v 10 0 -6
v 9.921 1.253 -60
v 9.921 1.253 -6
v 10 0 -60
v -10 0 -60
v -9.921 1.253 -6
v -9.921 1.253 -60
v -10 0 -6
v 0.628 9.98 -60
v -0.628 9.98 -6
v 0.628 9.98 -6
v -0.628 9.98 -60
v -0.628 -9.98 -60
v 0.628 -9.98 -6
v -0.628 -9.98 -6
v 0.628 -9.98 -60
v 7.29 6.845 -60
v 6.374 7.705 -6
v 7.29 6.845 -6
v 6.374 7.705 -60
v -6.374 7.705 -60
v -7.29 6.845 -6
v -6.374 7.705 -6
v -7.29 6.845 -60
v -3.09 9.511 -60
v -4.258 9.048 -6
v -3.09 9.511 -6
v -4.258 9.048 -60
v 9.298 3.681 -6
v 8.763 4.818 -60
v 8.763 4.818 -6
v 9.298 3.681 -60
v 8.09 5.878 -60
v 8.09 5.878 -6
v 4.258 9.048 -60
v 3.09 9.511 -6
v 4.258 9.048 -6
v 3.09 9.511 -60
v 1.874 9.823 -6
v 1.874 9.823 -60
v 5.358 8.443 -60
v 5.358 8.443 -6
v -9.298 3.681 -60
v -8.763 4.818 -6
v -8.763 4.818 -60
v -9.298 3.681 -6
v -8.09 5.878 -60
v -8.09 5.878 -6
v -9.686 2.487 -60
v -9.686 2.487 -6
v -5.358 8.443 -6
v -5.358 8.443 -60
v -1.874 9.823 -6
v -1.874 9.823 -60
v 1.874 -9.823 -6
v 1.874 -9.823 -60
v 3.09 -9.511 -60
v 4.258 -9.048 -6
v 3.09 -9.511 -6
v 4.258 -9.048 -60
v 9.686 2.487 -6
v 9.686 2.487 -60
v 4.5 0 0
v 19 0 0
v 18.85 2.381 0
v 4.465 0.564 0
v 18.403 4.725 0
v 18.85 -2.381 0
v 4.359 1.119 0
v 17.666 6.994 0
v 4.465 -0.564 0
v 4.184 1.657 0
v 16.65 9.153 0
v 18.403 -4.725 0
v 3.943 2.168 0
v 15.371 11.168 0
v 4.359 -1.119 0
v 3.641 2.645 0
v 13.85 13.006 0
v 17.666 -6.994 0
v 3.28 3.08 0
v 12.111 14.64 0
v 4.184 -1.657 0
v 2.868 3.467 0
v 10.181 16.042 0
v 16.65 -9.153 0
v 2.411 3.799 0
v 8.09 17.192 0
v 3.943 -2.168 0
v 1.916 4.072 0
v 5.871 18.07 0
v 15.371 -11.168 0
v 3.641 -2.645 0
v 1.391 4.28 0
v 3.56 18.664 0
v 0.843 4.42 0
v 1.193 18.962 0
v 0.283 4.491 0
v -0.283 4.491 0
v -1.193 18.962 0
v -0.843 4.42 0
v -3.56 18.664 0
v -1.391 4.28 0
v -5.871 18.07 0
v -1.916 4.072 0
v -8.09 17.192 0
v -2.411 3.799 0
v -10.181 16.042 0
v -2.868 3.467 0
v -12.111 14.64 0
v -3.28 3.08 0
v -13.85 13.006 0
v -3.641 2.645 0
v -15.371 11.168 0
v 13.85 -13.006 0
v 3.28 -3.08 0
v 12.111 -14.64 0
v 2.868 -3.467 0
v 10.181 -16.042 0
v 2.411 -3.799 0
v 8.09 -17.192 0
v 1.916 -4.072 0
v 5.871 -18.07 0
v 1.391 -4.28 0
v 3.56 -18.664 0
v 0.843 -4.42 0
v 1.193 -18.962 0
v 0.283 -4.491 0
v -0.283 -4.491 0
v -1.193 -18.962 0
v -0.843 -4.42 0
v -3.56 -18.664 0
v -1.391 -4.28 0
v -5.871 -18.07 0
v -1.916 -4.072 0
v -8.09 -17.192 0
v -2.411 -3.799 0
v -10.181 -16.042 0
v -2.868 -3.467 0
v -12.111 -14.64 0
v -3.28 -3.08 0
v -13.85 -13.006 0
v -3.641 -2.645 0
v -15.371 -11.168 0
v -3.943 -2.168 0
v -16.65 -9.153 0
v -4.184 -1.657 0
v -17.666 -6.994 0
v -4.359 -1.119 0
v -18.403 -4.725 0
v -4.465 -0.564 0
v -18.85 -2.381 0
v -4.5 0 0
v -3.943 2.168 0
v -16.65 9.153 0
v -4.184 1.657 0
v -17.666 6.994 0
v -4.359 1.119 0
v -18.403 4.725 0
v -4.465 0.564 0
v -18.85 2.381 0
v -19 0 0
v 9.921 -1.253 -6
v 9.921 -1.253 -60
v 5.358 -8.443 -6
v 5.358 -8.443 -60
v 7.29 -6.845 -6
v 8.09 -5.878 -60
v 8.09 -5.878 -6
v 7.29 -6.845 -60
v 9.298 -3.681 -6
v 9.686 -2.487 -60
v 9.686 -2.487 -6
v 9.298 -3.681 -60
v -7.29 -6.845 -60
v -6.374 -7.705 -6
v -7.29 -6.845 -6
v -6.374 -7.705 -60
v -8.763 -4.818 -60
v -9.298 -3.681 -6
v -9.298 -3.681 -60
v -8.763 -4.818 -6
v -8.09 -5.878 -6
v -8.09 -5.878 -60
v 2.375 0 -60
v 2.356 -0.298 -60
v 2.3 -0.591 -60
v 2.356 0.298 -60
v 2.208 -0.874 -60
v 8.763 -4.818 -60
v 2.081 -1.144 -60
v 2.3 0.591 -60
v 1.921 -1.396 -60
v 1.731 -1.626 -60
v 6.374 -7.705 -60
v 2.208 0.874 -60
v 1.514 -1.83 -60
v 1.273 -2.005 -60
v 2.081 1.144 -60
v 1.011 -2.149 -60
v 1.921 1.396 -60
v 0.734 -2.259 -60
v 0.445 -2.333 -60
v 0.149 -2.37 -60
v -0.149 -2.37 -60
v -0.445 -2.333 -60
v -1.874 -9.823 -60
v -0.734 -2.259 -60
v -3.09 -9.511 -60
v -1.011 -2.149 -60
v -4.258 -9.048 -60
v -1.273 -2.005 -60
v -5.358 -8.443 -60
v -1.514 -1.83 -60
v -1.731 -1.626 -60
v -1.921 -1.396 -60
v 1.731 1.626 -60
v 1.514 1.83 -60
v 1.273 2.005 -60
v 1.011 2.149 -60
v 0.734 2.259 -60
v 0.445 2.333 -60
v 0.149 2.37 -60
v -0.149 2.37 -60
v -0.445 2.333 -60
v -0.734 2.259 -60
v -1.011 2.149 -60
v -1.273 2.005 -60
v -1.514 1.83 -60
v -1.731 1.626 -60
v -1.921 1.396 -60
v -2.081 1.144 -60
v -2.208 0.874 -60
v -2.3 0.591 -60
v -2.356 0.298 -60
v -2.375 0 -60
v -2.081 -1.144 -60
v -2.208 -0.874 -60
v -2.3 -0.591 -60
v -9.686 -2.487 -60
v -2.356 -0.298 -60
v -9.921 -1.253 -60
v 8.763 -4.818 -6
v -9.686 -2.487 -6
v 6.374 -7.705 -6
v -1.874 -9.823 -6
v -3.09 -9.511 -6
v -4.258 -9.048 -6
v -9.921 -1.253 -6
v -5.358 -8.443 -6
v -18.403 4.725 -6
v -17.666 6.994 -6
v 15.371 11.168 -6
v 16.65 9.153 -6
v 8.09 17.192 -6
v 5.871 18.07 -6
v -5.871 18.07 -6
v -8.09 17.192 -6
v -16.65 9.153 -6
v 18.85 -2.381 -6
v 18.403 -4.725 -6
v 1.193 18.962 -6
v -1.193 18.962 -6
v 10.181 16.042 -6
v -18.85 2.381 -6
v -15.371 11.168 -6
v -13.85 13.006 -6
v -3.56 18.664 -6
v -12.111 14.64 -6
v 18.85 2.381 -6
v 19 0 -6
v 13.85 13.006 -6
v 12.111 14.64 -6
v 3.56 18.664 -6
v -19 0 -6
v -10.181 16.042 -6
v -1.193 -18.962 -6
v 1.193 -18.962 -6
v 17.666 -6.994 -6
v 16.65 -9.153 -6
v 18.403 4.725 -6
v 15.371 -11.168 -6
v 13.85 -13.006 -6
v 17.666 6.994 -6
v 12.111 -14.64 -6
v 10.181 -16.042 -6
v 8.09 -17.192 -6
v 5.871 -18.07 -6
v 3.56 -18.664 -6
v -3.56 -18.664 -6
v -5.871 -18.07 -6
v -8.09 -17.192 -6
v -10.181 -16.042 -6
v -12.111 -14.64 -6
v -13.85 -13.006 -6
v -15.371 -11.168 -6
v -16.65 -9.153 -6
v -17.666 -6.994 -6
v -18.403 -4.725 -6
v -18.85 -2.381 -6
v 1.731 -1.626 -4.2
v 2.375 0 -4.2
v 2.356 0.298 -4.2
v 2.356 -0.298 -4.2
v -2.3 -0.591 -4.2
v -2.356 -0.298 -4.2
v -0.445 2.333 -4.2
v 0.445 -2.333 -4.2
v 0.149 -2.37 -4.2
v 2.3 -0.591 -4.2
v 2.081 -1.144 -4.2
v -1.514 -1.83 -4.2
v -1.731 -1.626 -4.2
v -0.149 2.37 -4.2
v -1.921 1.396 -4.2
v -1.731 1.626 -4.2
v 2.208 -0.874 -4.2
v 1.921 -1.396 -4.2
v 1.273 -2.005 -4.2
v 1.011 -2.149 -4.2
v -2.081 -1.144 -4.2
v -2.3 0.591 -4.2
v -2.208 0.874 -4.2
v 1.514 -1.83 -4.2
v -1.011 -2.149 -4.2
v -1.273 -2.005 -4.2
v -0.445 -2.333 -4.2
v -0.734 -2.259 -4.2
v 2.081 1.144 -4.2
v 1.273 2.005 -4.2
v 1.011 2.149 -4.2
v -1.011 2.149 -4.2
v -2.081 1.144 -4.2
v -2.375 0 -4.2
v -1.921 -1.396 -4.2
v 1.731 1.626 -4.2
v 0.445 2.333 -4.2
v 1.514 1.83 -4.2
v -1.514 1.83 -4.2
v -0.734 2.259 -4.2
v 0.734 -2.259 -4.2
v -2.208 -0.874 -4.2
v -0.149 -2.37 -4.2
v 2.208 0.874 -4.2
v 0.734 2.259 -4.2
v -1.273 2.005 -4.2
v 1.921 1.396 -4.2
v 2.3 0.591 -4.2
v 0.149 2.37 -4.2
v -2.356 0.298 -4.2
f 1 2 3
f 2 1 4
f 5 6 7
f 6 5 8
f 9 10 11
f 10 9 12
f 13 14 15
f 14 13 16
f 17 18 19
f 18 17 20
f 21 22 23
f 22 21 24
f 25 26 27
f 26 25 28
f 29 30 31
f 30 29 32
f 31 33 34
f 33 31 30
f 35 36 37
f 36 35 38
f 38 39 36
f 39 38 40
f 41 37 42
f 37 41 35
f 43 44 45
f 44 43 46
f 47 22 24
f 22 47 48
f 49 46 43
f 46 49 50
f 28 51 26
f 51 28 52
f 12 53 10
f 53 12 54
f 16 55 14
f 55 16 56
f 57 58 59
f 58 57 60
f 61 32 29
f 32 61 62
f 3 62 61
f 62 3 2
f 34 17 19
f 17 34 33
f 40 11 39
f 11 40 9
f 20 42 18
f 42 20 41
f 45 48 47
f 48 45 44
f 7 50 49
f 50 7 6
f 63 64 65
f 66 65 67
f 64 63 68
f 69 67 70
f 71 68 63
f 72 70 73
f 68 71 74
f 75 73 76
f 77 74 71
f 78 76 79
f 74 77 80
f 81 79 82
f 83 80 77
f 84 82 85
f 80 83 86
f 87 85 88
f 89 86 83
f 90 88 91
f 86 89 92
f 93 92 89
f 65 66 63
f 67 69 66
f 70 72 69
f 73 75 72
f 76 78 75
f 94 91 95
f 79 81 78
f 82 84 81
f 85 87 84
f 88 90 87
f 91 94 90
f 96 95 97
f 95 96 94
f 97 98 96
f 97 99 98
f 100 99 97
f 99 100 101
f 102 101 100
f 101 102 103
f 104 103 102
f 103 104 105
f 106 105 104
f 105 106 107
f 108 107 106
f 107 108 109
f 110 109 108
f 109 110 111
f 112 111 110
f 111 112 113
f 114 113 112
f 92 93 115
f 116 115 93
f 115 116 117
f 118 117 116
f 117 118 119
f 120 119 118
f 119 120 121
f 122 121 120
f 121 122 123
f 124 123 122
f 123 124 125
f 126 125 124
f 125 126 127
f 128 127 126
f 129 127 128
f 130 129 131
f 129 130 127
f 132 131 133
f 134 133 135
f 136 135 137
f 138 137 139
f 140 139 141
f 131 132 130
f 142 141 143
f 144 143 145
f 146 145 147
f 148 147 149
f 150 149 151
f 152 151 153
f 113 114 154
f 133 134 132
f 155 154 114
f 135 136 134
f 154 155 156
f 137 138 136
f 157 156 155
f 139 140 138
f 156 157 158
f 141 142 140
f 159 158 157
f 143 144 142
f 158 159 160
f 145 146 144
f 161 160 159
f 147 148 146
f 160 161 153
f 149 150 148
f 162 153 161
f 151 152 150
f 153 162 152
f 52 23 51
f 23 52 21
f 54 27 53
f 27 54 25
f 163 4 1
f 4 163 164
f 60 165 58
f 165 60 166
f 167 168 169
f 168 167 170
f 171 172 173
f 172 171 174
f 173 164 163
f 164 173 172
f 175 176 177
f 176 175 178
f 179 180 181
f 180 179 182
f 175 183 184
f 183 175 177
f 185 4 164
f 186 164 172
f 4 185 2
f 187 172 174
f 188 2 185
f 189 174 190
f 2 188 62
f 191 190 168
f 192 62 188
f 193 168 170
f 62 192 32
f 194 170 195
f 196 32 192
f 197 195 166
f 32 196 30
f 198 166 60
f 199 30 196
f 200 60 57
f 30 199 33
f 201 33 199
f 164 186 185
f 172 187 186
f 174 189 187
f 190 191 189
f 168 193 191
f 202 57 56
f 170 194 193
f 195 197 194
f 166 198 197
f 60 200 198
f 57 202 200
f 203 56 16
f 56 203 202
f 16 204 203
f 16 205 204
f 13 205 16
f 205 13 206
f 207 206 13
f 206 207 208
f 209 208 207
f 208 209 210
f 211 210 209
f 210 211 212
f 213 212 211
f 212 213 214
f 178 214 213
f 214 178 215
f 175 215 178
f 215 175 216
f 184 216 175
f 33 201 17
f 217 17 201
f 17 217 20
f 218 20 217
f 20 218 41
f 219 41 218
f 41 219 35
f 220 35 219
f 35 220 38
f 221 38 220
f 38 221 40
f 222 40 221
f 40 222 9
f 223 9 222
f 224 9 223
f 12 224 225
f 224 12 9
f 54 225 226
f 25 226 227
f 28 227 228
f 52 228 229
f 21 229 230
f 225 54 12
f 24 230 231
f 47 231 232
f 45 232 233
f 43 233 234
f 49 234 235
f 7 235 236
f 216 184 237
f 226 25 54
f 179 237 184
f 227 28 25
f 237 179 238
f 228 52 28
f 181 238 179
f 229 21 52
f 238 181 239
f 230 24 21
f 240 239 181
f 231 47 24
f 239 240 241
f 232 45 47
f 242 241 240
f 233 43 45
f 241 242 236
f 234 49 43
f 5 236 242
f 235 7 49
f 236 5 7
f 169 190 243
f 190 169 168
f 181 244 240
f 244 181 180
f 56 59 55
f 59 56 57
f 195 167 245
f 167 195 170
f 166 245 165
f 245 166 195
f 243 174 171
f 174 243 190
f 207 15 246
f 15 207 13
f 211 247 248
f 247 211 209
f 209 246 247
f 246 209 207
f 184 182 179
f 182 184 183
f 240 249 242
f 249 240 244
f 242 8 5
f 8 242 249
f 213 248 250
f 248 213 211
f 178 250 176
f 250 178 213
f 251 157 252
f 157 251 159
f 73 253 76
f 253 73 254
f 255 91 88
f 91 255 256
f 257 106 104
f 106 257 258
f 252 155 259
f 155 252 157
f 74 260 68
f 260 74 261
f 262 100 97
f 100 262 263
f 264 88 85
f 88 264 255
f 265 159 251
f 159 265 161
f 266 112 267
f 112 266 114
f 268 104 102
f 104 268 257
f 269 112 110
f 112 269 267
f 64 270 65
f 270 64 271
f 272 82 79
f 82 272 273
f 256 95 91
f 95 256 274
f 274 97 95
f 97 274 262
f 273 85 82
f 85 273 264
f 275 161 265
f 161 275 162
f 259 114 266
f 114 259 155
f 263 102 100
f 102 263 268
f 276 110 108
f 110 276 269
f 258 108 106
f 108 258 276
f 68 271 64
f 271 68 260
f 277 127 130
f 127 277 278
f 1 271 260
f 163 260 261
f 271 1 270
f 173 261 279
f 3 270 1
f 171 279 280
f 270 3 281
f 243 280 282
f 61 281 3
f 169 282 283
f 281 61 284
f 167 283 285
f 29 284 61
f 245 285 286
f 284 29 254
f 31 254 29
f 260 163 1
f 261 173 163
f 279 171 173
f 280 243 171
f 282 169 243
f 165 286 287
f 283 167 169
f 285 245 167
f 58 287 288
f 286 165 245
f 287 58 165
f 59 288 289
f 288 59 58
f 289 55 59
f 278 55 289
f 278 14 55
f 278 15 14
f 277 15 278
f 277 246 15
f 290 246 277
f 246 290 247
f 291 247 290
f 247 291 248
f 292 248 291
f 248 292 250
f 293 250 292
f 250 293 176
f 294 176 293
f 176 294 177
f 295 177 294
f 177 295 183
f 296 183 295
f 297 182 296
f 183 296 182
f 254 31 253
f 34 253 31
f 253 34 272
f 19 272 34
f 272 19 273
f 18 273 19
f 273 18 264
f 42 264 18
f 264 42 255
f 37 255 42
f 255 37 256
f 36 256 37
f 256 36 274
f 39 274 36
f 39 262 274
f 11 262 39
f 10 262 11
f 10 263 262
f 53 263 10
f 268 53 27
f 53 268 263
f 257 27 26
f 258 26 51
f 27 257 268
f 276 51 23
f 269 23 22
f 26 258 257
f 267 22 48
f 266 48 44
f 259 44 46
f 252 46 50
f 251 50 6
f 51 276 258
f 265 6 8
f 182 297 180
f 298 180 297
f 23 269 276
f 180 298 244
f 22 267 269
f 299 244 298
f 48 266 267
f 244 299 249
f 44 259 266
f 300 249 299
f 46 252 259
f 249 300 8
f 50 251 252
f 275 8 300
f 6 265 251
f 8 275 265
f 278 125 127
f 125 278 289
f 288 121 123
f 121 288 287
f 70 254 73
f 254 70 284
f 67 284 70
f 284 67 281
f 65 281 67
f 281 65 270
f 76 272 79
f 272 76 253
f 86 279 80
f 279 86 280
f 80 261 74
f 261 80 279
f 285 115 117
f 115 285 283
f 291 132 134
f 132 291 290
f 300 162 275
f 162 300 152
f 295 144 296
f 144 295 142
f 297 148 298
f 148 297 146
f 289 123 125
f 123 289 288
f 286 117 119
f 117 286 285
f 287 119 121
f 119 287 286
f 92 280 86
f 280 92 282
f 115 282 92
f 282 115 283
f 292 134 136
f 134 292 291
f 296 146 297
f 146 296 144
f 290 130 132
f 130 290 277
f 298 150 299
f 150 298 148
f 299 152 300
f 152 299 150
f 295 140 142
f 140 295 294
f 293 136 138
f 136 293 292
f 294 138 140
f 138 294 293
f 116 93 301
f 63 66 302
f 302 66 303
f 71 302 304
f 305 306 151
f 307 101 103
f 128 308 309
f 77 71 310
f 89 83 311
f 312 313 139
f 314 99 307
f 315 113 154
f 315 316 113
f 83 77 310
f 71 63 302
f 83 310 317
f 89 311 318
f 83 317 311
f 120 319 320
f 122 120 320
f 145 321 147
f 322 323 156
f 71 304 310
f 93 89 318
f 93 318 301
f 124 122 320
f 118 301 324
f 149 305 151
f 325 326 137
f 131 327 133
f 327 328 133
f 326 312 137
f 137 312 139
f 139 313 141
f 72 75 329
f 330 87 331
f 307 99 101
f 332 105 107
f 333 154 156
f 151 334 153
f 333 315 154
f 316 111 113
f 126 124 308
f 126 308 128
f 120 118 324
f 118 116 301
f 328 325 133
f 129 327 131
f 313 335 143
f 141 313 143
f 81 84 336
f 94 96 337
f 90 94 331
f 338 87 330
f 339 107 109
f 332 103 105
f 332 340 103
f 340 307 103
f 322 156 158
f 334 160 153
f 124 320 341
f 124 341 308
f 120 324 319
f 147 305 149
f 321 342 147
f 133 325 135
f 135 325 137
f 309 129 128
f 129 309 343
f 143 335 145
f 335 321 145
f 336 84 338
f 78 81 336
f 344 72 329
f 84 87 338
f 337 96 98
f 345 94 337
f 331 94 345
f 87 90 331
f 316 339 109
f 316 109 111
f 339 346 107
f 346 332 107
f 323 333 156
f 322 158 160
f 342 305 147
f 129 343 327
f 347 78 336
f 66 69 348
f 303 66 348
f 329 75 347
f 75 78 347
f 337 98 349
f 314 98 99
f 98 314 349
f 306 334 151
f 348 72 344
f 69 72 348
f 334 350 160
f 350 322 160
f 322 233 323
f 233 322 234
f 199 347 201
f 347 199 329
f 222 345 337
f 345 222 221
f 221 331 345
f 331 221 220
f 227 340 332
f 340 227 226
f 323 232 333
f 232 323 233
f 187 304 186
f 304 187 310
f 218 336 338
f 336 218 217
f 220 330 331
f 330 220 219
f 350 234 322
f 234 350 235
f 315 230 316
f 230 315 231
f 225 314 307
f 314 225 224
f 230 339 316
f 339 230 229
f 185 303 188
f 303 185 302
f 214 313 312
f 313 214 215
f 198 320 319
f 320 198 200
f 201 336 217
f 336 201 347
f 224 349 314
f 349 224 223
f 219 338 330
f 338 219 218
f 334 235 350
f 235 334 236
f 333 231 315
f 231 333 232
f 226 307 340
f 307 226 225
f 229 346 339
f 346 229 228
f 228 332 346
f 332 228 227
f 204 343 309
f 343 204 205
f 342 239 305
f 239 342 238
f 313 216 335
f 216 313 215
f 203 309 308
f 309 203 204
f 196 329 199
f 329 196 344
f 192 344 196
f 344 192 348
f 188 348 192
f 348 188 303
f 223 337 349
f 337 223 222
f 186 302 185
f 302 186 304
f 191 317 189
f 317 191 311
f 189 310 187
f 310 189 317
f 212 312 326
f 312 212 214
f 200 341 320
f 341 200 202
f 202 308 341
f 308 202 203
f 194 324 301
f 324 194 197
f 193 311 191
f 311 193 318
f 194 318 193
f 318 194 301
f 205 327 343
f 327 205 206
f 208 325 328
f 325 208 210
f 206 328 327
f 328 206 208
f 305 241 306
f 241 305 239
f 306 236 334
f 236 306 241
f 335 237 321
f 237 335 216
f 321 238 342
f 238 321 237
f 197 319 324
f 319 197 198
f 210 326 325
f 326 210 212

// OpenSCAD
$fn = 50;


difference() {
	union() {
		translate(v = [0, 0, -60.0000000000]) {
			cylinder(h = 60, r = 10.0000000000);
		}
		translate(v = [0, 0, -6.0000000000]) {
			cylinder(h = 6, r = 19.0000000000);
		}
	}
	union() {
		translate(v = [0, 0, 0]) {
			rotate(a = [0, 0, 0]) {
				difference() {
					union() {
						#translate(v = [0, 0, -60.0000000000]) {
							cylinder(h = 60, r = 2.2500000000);
						}
						#translate(v = [0, 0, -4.2000000000]) {
							cylinder(h = 4.2000000000, r = 10.0000000000, r1 = 2.3750000000, r2 = 4.5000000000);
						}
						#translate(v = [0, 0, -60.0000000000]) {
							cylinder(h = 60, r = 2.3750000000);
						}
						#translate(v = [0, 0, -60.0000000000]) {
							cylinder(h = 60, r = 2.2500000000);
						}
					}
					union();
				}
			}
		}
	}
}
